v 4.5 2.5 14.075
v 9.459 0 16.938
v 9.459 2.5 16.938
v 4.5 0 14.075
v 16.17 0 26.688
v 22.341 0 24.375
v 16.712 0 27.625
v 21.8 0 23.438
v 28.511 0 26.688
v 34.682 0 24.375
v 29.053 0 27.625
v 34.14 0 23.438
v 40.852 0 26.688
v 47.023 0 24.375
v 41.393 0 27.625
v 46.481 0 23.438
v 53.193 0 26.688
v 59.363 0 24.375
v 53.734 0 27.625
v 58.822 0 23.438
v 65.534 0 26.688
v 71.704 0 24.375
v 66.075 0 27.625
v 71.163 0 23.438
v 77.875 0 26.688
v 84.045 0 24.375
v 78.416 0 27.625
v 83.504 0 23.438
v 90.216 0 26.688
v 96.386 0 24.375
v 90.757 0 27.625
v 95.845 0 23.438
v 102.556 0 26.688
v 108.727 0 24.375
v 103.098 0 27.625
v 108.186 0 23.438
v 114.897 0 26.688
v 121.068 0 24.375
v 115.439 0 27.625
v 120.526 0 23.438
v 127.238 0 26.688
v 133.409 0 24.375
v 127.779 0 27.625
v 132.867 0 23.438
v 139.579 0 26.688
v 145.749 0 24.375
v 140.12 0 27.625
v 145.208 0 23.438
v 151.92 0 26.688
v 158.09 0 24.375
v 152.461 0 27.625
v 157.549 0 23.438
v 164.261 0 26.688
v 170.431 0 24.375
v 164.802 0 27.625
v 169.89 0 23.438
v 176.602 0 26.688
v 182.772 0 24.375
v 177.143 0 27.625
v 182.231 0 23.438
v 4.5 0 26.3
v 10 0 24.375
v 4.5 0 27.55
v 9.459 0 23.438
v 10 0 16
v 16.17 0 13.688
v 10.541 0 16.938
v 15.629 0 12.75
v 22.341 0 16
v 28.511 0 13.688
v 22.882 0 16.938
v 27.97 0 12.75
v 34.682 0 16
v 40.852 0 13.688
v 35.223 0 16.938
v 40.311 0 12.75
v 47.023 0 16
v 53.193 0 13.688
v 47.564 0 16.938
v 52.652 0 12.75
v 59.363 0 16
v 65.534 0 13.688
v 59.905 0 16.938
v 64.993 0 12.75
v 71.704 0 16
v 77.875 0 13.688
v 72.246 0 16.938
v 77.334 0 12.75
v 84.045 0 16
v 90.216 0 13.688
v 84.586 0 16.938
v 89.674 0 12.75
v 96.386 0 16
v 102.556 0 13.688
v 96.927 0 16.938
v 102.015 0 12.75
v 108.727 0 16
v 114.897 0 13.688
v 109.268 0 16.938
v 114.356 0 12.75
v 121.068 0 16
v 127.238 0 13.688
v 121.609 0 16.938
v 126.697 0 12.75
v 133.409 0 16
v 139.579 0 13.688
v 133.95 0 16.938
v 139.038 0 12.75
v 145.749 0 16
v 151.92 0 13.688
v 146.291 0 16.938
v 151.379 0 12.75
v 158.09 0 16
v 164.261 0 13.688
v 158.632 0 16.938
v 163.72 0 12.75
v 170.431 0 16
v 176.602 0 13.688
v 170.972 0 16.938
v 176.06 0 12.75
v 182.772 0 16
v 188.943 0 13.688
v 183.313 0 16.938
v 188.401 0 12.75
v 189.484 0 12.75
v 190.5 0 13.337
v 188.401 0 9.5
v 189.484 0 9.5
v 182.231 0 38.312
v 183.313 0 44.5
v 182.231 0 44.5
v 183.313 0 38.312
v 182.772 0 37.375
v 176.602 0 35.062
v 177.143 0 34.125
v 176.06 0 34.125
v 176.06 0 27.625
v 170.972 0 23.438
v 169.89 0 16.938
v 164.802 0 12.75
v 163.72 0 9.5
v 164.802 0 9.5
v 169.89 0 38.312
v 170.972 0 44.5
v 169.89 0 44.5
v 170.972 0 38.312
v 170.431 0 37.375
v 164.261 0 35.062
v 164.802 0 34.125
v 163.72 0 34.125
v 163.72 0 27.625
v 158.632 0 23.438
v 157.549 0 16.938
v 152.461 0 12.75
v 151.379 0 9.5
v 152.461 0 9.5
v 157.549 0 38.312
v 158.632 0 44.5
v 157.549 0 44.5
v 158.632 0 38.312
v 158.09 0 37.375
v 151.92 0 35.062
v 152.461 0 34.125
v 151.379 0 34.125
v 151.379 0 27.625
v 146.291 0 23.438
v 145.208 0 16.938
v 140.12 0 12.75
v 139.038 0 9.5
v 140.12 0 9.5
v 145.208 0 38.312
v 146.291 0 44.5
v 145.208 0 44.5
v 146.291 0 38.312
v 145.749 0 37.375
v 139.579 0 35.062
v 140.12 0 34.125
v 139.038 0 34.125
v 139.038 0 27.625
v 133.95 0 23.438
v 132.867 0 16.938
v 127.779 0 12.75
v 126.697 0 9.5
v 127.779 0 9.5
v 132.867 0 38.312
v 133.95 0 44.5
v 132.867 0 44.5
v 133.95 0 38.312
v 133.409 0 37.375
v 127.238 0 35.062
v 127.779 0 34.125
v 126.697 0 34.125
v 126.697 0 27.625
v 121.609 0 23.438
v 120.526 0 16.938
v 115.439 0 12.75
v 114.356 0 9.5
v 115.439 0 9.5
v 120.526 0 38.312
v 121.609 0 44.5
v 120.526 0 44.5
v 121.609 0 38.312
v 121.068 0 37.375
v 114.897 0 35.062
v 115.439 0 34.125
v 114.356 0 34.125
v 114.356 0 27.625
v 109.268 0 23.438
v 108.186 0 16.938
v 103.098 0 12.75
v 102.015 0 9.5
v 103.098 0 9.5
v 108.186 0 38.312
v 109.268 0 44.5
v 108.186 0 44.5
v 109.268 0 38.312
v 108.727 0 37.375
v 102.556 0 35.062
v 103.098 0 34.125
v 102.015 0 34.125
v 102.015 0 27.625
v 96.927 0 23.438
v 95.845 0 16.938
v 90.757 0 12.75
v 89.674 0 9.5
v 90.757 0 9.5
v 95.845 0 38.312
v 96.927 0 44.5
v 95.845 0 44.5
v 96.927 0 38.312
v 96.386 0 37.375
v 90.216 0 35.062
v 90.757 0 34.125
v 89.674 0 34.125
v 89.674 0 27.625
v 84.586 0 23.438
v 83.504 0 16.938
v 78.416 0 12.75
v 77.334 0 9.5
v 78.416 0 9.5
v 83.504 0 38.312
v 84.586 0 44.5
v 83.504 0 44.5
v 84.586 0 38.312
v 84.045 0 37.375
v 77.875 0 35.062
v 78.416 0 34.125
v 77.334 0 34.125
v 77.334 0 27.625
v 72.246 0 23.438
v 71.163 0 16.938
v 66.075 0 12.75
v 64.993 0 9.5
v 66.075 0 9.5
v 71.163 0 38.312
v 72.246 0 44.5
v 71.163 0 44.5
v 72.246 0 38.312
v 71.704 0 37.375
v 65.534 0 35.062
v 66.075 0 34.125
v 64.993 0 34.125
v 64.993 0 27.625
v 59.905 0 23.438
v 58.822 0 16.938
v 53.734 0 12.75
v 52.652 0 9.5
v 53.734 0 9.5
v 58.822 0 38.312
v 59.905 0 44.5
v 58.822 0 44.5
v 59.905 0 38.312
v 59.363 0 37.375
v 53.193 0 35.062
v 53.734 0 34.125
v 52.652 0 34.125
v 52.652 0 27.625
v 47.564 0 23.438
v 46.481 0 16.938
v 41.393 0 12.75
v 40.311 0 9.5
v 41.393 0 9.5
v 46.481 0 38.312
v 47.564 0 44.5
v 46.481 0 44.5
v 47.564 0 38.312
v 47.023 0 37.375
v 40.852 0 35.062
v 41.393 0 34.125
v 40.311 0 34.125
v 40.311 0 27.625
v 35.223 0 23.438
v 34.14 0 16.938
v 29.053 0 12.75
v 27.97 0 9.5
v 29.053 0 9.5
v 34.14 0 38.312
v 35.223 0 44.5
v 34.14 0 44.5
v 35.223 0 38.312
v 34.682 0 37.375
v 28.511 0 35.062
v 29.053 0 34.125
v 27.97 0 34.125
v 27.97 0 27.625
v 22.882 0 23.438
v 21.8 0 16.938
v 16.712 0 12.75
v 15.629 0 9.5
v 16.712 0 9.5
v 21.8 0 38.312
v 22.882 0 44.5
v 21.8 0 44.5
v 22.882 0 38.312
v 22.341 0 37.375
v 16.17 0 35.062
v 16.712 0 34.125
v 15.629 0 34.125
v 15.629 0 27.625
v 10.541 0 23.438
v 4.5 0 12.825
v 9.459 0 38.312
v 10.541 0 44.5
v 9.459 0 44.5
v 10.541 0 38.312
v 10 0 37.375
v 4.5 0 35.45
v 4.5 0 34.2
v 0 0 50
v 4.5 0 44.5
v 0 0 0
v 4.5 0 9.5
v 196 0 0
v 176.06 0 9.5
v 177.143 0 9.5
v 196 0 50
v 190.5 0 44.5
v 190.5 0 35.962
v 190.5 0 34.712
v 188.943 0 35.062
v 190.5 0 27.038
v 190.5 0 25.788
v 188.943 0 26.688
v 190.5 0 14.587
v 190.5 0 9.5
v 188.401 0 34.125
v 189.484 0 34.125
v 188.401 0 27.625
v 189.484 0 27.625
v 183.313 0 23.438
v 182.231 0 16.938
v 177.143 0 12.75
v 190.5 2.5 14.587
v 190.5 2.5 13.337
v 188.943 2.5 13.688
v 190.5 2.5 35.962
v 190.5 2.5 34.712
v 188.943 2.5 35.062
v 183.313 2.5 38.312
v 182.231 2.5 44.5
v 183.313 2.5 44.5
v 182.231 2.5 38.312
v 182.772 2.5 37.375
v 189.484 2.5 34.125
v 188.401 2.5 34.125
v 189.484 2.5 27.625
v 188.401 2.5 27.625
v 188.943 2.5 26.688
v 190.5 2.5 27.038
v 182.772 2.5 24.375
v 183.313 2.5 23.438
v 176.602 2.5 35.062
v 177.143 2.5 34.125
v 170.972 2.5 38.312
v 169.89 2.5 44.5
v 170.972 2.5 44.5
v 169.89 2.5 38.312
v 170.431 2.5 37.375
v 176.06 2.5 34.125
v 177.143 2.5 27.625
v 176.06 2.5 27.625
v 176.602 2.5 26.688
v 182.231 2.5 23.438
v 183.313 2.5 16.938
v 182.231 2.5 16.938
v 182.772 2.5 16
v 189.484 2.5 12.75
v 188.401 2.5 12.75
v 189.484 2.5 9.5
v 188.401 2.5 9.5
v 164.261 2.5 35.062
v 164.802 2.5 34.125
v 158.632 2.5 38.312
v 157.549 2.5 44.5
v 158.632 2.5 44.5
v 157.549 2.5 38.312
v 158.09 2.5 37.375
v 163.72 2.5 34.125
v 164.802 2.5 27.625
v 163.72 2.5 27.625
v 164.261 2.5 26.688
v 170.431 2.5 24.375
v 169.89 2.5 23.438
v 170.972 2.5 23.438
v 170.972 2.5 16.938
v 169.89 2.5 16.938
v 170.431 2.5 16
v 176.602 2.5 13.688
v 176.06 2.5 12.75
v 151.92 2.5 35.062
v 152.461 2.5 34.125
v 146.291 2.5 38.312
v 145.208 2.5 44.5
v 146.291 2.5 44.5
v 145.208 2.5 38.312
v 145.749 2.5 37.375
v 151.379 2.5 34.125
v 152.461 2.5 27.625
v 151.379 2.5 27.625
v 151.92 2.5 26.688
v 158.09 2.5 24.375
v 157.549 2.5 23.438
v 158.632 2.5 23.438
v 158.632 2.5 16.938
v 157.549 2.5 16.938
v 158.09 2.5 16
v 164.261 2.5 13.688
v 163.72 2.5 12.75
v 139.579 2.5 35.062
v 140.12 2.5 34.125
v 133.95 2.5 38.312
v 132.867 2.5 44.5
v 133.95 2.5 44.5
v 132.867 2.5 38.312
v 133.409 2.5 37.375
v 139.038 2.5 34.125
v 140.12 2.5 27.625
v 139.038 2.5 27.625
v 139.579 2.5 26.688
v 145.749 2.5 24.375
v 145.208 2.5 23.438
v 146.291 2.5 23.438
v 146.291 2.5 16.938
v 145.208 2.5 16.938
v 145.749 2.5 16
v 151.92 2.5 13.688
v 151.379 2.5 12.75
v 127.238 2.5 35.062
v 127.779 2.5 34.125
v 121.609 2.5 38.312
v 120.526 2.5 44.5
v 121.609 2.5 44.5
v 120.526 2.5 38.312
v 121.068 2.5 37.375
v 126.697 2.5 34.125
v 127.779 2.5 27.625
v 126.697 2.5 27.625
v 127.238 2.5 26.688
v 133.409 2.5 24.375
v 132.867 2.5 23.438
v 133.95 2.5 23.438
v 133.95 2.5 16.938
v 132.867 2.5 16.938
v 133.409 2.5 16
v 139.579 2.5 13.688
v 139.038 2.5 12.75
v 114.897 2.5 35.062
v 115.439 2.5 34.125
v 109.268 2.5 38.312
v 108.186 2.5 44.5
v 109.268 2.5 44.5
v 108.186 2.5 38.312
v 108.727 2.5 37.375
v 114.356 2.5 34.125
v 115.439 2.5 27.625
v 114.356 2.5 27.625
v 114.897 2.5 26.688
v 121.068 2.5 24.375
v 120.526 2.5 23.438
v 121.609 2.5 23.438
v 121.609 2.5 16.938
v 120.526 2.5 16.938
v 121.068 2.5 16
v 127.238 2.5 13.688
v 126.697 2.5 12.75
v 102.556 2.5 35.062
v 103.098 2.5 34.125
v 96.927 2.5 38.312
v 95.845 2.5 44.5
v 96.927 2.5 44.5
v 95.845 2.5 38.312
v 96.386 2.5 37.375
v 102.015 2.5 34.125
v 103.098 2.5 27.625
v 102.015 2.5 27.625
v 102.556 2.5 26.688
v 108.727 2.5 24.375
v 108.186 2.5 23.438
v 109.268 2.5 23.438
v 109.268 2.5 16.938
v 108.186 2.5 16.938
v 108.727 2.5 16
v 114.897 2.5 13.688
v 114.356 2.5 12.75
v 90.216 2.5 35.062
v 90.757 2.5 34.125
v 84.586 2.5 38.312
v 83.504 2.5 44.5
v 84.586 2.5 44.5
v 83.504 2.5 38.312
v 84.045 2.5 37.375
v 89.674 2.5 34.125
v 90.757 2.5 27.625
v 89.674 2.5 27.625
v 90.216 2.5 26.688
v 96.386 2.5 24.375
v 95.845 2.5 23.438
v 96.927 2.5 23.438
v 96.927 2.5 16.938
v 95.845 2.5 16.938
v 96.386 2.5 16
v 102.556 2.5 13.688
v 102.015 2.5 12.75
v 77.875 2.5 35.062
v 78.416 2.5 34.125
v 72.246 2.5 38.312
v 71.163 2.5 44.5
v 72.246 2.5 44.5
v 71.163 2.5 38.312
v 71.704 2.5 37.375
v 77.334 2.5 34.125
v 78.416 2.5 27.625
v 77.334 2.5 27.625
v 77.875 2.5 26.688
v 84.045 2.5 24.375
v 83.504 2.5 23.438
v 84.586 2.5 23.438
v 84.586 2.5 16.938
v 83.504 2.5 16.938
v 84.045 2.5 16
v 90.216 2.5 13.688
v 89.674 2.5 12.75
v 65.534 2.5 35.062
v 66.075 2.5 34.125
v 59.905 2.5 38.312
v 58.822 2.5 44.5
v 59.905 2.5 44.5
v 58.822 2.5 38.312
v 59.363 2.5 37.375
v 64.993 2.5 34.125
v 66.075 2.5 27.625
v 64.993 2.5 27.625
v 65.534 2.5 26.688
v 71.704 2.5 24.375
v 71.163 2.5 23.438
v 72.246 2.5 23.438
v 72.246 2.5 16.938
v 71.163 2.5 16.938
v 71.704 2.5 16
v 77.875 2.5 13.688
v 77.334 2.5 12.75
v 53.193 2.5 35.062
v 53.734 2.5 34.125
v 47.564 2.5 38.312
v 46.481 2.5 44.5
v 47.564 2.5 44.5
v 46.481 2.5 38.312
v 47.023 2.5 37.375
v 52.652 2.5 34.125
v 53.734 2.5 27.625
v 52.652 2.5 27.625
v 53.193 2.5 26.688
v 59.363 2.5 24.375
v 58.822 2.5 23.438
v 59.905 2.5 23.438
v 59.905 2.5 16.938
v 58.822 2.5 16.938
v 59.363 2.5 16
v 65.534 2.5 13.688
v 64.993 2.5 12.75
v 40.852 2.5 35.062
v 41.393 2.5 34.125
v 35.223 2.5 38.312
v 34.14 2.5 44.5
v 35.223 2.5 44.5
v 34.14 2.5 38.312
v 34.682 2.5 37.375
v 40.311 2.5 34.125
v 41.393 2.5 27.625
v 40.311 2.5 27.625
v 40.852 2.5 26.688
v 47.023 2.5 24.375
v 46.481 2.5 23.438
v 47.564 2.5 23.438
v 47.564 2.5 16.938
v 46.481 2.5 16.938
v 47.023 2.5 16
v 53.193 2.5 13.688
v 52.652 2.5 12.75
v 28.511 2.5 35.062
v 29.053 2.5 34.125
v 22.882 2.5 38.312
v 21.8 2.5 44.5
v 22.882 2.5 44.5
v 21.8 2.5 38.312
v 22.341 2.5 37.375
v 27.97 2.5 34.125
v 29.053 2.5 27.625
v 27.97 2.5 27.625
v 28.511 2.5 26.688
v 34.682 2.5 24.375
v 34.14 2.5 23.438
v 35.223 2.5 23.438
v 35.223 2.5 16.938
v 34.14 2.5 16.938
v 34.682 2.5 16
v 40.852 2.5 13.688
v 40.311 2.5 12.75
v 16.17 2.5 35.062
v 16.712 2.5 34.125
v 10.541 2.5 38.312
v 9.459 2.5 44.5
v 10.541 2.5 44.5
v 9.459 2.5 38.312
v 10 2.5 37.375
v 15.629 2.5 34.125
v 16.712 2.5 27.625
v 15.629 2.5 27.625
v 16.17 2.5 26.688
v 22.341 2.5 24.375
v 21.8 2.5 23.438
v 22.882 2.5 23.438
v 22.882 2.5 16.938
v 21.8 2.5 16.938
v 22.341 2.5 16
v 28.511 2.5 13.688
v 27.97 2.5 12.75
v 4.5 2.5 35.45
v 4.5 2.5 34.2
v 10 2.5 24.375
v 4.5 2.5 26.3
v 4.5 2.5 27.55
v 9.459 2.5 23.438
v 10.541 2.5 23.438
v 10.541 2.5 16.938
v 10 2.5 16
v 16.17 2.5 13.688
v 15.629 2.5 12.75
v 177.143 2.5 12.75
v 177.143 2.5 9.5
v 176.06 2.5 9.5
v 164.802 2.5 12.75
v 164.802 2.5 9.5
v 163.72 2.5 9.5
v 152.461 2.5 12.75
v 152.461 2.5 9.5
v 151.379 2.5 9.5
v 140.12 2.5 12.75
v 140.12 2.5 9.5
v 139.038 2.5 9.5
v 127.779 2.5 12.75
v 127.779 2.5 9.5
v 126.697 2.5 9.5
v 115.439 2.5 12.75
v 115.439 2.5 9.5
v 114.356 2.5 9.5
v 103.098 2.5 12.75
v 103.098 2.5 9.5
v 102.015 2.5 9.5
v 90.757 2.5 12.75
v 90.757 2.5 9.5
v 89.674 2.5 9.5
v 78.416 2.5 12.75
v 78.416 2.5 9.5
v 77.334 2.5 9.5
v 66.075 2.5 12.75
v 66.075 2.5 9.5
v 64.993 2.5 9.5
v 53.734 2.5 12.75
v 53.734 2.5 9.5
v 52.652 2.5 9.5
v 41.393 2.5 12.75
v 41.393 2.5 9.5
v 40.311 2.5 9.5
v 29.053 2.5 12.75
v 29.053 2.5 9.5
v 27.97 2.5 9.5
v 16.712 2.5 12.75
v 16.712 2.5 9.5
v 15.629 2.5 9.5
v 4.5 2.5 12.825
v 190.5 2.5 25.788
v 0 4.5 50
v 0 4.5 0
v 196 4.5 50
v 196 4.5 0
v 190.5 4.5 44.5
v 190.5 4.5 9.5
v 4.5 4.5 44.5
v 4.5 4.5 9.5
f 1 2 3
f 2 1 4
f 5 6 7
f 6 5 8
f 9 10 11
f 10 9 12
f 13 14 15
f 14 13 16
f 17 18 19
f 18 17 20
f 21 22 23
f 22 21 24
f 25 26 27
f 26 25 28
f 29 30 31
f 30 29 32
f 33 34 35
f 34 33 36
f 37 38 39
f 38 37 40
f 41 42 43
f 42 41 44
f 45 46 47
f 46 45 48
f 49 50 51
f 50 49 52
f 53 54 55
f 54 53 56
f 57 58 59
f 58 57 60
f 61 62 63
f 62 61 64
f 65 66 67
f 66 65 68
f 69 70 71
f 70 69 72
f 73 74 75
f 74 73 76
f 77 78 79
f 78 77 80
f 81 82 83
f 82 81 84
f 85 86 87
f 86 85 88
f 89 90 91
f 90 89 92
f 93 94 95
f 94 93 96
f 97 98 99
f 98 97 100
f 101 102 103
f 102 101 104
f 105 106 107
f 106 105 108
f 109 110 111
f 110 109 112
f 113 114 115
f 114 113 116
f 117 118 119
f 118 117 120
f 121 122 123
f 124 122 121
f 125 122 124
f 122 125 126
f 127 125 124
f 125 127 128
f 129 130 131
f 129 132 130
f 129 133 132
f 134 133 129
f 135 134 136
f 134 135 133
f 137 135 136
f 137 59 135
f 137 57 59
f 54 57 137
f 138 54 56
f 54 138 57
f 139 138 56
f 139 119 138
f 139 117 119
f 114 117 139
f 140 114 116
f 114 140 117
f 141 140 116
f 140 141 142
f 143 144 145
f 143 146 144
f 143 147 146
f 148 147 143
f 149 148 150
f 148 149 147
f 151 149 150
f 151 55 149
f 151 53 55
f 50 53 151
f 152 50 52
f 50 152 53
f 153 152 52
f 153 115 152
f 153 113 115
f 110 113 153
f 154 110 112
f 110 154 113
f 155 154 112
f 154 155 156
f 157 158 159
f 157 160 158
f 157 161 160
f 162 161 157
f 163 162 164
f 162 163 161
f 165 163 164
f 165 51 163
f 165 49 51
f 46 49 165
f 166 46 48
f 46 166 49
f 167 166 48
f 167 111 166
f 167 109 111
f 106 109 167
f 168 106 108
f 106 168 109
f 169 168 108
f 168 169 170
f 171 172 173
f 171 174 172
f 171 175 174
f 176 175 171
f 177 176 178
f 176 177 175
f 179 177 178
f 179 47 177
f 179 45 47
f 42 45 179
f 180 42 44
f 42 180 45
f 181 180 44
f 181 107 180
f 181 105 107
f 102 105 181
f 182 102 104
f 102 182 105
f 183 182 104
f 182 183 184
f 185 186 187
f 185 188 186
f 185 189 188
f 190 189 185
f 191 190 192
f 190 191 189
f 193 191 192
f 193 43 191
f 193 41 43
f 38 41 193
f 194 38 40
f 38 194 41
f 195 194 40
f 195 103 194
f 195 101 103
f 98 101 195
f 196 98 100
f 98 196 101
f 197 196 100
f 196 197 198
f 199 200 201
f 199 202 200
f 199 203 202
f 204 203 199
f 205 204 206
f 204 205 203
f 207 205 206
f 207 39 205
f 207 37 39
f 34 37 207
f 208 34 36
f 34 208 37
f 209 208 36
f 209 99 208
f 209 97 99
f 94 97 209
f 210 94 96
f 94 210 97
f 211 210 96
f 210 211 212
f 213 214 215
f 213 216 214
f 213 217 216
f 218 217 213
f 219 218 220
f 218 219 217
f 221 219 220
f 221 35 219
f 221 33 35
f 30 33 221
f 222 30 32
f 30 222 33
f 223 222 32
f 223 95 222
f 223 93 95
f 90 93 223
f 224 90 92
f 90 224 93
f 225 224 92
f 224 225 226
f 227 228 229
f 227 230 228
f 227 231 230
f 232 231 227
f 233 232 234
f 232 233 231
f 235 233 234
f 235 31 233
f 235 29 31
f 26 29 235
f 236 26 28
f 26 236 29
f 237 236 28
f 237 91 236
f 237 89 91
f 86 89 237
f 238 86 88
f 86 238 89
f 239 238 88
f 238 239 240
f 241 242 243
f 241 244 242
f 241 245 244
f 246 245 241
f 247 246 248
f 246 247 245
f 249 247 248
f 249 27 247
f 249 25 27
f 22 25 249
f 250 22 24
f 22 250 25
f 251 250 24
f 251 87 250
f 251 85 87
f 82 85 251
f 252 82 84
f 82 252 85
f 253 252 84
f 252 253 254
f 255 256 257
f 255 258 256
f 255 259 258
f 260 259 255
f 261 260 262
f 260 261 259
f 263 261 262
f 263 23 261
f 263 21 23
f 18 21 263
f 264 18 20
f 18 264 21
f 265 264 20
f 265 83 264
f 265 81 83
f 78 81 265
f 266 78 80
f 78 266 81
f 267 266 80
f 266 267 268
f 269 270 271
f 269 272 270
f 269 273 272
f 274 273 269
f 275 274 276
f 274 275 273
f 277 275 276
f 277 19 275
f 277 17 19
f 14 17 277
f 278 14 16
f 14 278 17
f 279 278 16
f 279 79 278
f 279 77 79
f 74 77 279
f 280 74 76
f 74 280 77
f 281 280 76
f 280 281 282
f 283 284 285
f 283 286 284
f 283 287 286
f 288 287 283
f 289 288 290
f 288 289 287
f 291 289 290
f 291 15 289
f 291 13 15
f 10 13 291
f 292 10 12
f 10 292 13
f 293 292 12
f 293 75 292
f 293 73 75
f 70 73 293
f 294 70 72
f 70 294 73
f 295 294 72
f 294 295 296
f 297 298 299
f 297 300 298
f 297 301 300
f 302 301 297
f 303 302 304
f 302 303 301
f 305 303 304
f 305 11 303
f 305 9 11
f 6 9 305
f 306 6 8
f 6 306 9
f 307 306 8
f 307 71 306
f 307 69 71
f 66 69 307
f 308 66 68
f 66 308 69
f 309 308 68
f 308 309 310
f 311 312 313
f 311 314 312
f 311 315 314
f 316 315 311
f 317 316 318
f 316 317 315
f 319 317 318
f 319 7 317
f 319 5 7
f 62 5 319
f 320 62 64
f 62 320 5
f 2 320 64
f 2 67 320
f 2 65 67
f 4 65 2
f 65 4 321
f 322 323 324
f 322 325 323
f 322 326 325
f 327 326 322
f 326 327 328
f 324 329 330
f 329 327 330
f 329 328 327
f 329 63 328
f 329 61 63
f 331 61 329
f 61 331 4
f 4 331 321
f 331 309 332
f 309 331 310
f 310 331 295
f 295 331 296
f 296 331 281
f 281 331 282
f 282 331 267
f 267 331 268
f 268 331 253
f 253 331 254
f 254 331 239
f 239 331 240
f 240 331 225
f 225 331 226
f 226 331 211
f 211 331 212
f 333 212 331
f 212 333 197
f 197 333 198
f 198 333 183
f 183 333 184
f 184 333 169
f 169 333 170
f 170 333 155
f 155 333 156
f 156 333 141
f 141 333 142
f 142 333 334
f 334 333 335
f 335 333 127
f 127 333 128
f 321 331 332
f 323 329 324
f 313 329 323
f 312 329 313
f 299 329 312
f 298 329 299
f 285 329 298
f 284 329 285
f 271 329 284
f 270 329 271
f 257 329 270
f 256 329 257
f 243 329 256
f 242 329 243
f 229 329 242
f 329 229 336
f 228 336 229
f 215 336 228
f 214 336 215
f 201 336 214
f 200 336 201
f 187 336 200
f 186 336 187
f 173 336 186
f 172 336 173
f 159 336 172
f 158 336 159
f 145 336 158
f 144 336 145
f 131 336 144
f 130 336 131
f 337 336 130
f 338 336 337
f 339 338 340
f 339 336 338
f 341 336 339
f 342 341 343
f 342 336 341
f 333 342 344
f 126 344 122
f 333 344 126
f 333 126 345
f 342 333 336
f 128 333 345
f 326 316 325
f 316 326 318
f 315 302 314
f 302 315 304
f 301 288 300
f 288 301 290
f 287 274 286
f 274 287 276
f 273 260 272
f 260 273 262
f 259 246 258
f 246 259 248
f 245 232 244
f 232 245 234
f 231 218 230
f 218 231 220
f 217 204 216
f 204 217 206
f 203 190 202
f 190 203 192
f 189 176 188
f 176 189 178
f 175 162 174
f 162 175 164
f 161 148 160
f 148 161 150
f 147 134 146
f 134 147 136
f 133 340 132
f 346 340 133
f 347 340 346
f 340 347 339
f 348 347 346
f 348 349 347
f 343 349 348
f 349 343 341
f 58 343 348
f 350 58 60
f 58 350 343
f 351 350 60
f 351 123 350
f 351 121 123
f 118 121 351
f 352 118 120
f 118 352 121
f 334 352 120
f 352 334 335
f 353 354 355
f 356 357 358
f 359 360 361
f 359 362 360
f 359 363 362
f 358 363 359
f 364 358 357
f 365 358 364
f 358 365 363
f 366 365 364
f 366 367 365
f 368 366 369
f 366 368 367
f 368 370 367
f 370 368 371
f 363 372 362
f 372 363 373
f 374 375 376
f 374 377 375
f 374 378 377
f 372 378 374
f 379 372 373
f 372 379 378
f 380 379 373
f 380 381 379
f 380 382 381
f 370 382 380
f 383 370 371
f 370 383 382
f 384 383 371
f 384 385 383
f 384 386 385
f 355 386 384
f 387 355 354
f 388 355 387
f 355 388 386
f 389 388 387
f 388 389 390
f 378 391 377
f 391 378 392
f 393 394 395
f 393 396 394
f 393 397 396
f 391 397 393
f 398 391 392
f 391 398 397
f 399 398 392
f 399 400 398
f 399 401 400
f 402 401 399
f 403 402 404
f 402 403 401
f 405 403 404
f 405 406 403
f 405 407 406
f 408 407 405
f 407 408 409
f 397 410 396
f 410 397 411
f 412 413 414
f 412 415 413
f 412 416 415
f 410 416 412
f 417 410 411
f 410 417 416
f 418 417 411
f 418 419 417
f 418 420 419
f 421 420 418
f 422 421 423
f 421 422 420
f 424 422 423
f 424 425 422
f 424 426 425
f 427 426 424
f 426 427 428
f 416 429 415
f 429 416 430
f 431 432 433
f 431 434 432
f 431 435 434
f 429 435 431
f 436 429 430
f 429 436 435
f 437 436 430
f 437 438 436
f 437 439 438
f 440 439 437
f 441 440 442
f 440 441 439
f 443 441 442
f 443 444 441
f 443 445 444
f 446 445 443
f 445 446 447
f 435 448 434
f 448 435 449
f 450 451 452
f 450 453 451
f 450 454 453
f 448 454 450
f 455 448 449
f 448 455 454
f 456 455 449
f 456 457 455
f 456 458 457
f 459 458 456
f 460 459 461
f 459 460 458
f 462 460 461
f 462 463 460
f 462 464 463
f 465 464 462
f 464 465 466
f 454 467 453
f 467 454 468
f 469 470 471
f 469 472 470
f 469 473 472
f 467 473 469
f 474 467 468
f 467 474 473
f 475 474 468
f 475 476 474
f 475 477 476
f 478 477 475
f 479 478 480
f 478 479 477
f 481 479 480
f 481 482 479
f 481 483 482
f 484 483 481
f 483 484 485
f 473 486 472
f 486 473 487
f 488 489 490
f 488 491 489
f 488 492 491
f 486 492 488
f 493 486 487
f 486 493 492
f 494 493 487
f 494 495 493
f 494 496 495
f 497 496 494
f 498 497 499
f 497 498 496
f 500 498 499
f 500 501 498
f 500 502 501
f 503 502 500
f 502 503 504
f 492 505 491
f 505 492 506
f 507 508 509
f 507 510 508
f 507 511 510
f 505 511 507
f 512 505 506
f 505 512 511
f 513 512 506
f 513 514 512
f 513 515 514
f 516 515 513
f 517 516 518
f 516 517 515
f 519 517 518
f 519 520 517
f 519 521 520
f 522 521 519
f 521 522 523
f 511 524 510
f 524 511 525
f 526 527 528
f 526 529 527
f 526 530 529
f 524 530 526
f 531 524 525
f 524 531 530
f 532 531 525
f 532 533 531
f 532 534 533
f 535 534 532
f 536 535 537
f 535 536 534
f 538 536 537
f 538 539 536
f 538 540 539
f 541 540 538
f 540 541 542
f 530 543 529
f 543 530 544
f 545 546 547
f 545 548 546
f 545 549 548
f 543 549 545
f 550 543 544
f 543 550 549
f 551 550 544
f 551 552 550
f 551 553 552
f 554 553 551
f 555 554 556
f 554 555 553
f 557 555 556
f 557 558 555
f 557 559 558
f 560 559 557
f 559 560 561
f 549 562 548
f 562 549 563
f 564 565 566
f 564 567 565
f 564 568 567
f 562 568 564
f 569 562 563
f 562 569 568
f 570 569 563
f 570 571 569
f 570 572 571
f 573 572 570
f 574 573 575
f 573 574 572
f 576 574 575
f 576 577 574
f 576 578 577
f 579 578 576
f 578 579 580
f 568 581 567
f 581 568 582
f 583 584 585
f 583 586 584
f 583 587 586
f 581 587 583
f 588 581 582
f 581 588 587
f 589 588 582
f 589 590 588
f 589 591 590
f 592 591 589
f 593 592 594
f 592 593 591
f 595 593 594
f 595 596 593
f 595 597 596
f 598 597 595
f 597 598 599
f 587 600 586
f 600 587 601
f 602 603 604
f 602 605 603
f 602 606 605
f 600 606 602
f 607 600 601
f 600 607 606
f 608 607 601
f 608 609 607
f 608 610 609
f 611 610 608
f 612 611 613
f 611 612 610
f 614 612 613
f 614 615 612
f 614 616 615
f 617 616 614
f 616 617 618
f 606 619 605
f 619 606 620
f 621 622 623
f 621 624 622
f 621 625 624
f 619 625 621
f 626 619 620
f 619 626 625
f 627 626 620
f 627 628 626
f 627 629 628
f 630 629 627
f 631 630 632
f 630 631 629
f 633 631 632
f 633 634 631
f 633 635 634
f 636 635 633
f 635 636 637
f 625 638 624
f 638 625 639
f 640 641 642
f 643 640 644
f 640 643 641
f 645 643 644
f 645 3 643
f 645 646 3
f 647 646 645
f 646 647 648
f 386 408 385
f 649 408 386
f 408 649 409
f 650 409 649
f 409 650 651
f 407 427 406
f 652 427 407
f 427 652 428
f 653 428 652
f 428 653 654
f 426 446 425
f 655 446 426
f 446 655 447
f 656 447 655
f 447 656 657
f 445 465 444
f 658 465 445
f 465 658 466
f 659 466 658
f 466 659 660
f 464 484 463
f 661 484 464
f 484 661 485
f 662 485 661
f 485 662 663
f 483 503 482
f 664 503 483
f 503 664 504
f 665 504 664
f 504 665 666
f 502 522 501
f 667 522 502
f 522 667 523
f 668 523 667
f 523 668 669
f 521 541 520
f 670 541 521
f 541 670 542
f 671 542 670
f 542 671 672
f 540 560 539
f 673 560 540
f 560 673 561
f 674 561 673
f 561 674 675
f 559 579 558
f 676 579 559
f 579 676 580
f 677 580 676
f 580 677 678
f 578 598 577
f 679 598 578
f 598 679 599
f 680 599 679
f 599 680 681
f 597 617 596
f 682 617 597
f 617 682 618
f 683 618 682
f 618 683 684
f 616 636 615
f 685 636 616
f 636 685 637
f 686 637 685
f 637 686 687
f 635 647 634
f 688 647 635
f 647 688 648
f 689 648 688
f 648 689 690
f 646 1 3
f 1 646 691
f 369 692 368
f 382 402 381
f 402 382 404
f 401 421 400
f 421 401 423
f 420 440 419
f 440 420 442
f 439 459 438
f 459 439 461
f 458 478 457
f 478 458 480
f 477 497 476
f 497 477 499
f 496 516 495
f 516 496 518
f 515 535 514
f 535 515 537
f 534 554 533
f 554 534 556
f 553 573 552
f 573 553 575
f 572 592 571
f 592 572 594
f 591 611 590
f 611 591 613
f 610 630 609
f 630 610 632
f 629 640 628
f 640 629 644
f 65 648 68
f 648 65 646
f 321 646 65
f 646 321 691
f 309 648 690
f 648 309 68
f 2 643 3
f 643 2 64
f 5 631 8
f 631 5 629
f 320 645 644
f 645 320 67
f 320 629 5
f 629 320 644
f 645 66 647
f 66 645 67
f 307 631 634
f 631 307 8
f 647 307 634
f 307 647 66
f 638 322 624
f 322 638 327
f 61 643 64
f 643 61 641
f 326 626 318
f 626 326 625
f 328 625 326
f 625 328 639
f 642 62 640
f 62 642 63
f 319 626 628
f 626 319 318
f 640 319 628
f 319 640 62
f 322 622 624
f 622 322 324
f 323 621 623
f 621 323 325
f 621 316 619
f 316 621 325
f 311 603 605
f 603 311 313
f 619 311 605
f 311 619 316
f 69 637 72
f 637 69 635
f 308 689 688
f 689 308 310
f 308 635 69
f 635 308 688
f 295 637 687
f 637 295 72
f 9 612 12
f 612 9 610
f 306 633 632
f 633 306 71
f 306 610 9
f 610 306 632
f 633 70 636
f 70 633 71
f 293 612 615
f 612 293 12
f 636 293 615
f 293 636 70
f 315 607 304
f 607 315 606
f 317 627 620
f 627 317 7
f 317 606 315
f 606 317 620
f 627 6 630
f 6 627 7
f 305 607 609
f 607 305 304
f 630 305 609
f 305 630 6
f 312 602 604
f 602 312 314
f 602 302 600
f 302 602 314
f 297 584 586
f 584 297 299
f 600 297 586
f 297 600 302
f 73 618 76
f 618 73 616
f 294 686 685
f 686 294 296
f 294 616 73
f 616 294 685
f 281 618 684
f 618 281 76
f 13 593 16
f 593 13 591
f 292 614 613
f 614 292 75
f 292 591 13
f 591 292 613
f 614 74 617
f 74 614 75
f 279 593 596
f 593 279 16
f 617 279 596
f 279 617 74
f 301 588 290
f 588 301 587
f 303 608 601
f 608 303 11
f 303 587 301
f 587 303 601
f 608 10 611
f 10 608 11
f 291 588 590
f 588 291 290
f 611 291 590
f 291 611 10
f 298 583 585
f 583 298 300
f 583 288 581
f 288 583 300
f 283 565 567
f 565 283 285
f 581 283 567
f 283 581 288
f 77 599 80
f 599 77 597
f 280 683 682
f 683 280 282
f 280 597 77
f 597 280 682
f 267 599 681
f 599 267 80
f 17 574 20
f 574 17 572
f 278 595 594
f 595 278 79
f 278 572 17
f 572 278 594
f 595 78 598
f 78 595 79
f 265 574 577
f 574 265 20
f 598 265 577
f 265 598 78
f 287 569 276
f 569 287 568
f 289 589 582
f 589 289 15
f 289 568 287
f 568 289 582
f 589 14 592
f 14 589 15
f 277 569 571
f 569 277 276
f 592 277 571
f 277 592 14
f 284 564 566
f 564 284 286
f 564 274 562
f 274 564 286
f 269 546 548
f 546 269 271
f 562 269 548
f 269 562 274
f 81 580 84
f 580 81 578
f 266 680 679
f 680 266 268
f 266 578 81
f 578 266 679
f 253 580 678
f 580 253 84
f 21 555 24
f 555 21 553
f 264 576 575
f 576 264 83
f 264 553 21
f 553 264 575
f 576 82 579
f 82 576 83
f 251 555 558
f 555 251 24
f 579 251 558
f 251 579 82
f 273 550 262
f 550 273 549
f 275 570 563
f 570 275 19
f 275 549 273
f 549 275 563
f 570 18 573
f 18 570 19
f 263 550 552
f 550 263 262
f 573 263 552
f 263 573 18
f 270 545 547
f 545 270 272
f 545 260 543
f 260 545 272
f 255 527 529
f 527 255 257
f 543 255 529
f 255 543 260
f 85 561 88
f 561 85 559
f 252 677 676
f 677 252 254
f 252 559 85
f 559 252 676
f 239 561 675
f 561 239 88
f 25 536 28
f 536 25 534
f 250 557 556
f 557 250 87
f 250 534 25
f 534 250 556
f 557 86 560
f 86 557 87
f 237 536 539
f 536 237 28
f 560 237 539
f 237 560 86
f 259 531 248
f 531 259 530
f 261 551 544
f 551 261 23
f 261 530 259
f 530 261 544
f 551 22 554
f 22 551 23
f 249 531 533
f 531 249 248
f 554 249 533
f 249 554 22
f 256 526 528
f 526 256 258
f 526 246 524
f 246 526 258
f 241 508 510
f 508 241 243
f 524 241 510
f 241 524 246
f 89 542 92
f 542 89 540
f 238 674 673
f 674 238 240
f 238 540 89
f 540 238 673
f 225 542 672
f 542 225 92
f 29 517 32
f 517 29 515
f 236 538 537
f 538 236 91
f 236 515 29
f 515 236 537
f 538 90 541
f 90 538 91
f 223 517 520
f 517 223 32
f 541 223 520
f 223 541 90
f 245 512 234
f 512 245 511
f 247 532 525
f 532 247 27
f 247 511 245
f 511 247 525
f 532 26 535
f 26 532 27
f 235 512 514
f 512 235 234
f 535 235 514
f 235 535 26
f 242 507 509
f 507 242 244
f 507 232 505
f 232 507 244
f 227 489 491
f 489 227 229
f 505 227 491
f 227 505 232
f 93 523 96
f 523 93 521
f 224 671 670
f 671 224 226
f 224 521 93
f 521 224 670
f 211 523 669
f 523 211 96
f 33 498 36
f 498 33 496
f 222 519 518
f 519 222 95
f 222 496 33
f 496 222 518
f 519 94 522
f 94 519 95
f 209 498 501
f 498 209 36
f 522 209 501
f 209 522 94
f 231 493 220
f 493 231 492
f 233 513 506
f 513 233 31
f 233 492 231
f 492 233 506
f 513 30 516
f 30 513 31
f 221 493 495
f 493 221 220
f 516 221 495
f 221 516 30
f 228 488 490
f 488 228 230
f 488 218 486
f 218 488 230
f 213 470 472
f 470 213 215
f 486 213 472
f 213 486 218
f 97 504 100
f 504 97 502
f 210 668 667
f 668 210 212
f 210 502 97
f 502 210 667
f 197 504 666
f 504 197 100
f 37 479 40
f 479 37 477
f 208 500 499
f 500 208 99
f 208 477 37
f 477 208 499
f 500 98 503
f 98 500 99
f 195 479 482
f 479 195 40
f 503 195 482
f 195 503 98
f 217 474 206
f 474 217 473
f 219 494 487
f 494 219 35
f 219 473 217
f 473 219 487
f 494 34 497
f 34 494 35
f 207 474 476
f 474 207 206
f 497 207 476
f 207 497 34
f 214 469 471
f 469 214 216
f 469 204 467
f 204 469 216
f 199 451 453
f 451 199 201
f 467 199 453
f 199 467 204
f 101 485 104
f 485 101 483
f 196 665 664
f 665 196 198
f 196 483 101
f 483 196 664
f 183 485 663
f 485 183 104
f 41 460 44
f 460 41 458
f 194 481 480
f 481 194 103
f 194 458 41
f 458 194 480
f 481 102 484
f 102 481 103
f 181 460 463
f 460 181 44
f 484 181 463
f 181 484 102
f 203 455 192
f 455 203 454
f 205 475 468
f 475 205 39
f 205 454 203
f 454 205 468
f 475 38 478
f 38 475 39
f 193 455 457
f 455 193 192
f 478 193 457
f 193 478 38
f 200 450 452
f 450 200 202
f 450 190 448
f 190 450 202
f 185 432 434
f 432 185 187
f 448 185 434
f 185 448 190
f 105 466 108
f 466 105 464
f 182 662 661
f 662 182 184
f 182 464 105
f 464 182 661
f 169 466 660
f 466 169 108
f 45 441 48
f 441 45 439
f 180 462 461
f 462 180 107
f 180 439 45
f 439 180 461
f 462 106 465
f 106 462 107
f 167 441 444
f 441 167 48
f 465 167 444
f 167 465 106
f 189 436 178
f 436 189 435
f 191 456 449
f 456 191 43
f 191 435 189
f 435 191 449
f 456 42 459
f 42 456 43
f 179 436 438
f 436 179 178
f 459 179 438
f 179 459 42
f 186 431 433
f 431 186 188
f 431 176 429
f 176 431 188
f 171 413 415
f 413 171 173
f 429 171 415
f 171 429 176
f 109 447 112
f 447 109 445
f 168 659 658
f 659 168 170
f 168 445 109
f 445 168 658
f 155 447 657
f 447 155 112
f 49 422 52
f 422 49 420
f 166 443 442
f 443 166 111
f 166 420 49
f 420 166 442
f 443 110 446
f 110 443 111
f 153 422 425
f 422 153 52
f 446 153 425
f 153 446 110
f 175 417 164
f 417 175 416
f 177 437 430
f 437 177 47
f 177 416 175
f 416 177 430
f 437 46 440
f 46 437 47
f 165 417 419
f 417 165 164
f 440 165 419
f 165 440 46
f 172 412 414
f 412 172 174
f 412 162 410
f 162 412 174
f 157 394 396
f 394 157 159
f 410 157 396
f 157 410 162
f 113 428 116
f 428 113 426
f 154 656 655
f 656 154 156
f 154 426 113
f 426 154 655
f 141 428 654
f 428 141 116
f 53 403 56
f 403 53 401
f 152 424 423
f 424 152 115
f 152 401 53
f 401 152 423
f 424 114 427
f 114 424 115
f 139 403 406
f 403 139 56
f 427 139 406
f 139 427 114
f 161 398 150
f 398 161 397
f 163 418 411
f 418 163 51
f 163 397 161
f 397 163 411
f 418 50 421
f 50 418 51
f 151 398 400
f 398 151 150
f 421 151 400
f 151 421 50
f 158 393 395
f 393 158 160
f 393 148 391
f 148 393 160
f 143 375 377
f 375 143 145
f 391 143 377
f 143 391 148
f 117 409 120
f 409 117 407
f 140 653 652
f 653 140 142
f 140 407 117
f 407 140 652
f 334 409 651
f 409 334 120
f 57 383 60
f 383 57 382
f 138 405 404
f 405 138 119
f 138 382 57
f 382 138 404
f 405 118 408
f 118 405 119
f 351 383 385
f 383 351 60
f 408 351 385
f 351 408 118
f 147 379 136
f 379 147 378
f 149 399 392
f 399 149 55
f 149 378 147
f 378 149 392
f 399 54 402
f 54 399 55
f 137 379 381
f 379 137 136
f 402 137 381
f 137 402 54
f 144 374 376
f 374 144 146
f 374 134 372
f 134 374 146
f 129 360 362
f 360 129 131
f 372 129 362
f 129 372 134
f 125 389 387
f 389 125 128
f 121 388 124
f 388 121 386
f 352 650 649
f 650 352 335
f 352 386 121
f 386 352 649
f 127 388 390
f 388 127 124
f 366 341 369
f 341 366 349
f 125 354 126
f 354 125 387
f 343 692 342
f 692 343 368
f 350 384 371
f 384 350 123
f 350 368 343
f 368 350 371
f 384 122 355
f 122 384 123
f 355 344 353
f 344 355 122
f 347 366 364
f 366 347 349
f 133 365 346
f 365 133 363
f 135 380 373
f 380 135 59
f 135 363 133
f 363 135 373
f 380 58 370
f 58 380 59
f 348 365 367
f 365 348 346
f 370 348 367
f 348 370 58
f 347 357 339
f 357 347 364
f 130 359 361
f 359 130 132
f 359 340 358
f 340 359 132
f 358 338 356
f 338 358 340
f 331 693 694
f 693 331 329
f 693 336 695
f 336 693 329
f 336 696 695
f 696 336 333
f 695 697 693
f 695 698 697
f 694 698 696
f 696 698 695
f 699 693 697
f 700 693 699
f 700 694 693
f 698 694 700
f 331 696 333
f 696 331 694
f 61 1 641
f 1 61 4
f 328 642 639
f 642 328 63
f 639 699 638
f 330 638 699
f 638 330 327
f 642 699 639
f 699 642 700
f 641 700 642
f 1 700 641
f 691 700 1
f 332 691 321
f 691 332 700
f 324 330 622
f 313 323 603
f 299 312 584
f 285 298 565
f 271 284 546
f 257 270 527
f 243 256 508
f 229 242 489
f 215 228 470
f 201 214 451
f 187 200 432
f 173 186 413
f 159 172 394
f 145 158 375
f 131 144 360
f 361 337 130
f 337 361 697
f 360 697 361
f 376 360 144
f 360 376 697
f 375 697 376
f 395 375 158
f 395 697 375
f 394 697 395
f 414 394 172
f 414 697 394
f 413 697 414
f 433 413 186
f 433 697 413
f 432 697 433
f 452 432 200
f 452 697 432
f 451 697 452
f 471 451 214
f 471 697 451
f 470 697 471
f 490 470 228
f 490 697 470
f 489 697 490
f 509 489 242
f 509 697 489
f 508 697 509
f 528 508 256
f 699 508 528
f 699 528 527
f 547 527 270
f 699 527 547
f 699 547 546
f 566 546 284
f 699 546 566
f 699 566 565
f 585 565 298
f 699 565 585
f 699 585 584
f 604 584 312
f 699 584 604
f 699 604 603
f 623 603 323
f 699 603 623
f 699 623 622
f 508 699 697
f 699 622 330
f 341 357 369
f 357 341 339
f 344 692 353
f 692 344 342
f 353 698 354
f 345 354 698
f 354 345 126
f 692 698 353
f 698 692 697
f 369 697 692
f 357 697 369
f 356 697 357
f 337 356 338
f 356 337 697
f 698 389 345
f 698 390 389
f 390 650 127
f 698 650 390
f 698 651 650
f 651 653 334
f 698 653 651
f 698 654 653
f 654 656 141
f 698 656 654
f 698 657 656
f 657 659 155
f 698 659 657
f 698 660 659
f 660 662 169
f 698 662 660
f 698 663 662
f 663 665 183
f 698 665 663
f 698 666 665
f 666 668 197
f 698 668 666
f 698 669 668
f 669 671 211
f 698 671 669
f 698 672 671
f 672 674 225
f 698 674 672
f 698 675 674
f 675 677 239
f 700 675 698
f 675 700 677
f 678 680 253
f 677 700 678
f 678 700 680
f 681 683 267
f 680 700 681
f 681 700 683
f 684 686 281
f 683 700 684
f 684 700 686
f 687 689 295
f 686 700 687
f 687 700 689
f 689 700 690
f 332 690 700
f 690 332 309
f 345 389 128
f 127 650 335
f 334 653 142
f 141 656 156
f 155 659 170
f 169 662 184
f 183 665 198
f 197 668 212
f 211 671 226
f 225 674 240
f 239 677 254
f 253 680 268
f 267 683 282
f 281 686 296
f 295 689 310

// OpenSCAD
// file: ../modules/hex_grid_v02.scad
module hex(hole, wall, thick){
    hole = hole;
    wall = wall;
    difference(){
        rotate([0, 0, 30]) cylinder(d = (hole + wall), h = thick, $fn = 6);
        translate([0, 0, -0.1]) rotate([0, 0, 30]) cylinder(d = hole, h = thick + 0.2, $fn = 6);
    }
}



module hexgrid(box, holediameter, wallthickness) {
    a = (holediameter + (wallthickness/2))*sin(60);
    for(x = [holediameter/2: a: box[0]]) {
        for(y = [holediameter/2: 2*a*sin(60): box[1]]) {
            translate([x, y, 0]) hex(holediameter, wallthickness, box[2]);
            translate([x + a*cos(60), y + a*sin(60), 0]) hex(holediameter, wallthickness, box[2]);

        }
    }
        
}

// first arg is vector that defines the bounding box, length, width, height
// second arg in the 'diameter' of the holes. In OpenScad, this refers to the corner-to-corner diameter, not flat-to-flat
// this diameter is 2/sqrt(3) times larger than flat to flat
// third arg is wall thickness.  This also is measured that the corners, not the flats. 

hexgrid([25, 25, 1.5], 1, 0.5);


echo(2/sqrt(3));
// main file
//https://www.thingiverse.com/thing:1296149/files
use <./../modules/hex_grid_v02.scad>;

$fn=100;
gate_thickness=4.5;
grid_thickness=2.5;
gate_width=200;
gate_height=50;




union() {

    rotate([90,0,0])
    translate([3.5, 3, -2.5])
    color("white")
    hexgrid([180, 34, 2.5], 13, 2.5);
    
    difference() {
        
        cube([196,4.5, 50]);
        
        color("red")
        translate([4.5, -1, 9.5])
        cube([186, 6.5, 50-15]);
    }
    
}
